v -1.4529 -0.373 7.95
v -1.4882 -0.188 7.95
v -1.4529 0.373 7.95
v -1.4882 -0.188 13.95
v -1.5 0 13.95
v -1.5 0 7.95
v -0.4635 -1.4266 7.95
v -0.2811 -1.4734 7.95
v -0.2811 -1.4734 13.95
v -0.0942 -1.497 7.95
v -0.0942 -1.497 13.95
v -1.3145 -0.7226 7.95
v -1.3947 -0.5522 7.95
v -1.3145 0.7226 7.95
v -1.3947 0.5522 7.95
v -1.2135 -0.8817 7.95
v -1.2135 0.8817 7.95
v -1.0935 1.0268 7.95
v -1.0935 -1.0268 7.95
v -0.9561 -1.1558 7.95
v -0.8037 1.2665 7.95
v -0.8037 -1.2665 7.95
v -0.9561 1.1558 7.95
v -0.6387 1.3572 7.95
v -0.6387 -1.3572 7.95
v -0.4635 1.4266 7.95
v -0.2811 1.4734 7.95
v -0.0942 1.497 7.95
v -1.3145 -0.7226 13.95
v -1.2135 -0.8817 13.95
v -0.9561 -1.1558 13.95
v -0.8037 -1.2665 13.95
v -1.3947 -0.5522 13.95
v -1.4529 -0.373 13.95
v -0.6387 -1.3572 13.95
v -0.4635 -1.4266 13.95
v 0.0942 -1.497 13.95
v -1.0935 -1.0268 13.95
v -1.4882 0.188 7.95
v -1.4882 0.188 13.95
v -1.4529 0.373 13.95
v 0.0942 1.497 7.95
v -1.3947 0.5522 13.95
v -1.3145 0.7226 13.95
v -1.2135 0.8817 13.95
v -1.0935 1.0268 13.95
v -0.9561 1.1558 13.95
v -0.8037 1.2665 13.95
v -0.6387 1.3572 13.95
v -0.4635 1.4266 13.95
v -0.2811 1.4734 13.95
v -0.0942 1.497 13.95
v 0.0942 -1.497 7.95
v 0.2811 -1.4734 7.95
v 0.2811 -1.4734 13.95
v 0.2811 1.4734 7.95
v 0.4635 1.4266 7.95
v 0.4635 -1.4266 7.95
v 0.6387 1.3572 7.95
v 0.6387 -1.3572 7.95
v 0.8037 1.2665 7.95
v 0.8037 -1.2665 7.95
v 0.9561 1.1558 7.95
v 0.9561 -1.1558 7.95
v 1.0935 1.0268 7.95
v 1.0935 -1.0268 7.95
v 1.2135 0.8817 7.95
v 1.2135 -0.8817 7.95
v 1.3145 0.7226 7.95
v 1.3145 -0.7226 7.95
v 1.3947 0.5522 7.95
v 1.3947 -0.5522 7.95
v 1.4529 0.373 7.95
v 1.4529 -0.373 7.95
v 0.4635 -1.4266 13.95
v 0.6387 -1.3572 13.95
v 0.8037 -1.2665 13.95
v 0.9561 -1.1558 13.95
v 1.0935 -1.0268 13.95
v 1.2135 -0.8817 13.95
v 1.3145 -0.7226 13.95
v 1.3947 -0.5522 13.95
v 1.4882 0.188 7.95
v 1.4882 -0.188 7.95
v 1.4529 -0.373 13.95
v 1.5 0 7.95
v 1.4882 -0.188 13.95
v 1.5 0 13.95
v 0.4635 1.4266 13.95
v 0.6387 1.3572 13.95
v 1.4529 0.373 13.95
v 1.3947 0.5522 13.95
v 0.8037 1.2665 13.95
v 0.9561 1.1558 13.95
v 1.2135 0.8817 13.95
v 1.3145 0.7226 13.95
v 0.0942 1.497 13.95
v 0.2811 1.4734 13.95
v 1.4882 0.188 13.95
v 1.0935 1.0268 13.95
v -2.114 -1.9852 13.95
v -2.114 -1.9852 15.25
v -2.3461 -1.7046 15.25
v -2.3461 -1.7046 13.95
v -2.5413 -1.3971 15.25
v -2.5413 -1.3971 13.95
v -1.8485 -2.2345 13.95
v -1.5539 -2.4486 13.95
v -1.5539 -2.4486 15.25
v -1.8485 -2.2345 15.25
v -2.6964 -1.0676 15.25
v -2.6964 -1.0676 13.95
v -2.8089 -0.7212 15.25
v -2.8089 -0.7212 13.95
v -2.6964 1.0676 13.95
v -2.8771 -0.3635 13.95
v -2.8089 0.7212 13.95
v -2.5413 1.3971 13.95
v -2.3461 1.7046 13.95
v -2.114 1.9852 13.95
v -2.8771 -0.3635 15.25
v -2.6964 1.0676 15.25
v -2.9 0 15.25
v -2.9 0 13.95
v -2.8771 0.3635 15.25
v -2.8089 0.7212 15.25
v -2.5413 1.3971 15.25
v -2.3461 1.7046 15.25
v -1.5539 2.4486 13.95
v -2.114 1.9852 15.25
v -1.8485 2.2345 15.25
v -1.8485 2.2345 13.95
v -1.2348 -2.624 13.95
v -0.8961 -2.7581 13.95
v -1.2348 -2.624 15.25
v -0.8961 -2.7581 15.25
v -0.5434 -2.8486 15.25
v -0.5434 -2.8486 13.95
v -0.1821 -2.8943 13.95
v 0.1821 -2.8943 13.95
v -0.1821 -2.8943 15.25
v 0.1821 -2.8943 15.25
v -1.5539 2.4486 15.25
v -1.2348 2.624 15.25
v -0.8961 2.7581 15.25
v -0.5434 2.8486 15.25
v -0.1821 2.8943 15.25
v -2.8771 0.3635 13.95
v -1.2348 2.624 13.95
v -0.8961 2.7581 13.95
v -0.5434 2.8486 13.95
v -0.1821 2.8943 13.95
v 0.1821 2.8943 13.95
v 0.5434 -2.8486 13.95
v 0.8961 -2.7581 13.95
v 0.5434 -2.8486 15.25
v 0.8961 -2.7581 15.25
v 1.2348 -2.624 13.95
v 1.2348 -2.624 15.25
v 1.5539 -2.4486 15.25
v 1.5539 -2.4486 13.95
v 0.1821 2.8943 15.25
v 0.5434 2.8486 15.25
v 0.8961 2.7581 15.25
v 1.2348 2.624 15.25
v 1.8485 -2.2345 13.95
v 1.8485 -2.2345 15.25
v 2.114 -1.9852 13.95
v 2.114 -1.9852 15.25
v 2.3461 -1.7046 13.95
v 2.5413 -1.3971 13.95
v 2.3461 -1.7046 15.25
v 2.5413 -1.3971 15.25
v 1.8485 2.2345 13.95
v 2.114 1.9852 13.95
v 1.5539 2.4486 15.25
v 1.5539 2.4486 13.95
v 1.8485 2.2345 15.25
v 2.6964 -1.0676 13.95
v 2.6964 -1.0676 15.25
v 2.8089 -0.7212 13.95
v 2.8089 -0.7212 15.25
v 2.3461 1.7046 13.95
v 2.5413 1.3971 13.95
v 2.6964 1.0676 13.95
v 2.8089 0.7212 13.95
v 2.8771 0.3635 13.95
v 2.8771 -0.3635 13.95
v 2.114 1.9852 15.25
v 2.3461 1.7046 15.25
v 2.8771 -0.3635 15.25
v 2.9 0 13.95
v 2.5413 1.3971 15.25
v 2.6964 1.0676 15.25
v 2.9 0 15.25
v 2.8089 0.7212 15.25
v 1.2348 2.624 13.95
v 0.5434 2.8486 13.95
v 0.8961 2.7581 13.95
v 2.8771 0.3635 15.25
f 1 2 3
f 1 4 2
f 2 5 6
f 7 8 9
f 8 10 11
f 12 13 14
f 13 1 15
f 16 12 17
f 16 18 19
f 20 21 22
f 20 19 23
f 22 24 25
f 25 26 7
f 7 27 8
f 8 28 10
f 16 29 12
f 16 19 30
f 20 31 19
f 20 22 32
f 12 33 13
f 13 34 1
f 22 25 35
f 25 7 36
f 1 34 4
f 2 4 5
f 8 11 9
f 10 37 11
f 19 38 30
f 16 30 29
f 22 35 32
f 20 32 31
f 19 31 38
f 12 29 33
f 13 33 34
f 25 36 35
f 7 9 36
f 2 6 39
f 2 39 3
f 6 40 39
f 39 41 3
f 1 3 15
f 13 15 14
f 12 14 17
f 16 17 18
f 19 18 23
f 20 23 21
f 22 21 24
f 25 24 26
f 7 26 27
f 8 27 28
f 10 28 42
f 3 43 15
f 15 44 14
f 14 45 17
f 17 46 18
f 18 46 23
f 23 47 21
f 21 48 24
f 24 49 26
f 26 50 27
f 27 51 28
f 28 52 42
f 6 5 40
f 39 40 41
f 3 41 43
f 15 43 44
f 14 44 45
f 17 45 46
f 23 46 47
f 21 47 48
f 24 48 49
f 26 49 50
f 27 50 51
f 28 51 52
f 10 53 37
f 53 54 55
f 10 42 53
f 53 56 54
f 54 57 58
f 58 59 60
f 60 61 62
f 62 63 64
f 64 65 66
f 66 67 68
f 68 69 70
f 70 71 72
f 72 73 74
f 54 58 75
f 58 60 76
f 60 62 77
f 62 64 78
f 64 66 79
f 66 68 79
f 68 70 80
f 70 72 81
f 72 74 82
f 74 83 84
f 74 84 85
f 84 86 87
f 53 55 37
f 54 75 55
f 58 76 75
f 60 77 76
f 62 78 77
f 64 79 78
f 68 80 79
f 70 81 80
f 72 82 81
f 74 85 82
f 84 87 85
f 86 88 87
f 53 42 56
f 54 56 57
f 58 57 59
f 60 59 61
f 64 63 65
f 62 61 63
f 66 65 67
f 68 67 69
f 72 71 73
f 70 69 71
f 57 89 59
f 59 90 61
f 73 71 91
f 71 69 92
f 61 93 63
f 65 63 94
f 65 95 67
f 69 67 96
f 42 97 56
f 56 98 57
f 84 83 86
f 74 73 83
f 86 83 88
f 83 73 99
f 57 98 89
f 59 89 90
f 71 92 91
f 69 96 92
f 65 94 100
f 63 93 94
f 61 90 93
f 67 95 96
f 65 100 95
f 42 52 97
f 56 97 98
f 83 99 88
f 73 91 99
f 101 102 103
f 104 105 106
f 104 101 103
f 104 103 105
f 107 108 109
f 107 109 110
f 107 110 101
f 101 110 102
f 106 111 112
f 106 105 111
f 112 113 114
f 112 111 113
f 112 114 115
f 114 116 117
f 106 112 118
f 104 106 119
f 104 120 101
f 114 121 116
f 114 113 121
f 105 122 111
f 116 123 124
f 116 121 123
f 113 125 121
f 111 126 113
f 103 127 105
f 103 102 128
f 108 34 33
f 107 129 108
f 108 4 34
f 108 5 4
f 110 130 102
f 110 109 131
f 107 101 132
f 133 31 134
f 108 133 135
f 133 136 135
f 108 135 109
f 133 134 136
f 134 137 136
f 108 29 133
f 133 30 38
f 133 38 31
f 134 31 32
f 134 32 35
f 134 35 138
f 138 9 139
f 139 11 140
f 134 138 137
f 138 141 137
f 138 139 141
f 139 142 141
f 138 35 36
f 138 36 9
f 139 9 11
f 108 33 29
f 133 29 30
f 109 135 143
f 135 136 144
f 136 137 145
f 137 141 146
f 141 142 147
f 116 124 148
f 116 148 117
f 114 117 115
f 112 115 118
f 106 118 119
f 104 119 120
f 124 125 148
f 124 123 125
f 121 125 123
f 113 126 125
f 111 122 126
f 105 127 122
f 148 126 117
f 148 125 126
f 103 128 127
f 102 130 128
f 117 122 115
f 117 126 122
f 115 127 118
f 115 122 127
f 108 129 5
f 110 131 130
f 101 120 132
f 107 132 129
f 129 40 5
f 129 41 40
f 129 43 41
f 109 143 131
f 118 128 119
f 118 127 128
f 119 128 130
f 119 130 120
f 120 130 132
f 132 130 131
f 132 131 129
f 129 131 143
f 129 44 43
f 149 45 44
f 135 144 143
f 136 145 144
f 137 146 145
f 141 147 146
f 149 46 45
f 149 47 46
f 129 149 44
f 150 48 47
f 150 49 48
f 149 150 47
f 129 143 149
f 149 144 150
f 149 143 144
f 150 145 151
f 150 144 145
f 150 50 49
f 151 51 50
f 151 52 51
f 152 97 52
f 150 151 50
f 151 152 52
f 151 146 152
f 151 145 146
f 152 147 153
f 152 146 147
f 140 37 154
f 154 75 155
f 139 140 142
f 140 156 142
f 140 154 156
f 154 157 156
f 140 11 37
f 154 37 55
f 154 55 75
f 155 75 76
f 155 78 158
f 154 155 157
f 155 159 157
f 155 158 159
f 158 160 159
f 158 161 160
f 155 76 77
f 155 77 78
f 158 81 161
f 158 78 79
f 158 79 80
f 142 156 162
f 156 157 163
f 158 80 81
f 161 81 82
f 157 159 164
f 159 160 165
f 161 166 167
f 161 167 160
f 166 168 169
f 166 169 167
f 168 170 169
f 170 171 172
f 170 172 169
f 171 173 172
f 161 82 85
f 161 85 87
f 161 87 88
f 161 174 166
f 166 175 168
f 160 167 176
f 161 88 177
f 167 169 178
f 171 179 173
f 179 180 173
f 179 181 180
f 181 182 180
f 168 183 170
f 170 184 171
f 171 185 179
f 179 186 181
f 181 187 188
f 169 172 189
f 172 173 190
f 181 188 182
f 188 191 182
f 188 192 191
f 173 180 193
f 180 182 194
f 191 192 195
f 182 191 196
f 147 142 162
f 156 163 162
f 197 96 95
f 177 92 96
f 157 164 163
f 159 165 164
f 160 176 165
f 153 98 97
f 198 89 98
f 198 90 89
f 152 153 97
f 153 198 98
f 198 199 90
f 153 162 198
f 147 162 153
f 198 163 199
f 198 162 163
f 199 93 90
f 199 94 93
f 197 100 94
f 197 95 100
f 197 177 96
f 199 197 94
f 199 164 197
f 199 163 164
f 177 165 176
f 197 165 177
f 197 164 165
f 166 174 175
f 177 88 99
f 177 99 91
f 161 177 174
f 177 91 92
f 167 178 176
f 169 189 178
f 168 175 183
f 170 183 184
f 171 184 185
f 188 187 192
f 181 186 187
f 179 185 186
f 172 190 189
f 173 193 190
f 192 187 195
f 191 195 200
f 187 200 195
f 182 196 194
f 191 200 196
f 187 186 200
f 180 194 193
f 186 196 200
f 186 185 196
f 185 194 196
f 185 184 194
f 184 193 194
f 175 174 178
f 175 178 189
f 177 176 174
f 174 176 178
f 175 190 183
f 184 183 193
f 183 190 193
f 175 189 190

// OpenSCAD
$fn = 50;

difference() {
	union() {
		translate(v = [0, 0, 7.950000000000001]) {
			cylinder(h = 6, r = 1.5);
		}
		translate(v = [0, 0, 13.950000000000001]) {
			cylinder(h = 1.3, r = 2.9);
		}
	}
	union();
}
